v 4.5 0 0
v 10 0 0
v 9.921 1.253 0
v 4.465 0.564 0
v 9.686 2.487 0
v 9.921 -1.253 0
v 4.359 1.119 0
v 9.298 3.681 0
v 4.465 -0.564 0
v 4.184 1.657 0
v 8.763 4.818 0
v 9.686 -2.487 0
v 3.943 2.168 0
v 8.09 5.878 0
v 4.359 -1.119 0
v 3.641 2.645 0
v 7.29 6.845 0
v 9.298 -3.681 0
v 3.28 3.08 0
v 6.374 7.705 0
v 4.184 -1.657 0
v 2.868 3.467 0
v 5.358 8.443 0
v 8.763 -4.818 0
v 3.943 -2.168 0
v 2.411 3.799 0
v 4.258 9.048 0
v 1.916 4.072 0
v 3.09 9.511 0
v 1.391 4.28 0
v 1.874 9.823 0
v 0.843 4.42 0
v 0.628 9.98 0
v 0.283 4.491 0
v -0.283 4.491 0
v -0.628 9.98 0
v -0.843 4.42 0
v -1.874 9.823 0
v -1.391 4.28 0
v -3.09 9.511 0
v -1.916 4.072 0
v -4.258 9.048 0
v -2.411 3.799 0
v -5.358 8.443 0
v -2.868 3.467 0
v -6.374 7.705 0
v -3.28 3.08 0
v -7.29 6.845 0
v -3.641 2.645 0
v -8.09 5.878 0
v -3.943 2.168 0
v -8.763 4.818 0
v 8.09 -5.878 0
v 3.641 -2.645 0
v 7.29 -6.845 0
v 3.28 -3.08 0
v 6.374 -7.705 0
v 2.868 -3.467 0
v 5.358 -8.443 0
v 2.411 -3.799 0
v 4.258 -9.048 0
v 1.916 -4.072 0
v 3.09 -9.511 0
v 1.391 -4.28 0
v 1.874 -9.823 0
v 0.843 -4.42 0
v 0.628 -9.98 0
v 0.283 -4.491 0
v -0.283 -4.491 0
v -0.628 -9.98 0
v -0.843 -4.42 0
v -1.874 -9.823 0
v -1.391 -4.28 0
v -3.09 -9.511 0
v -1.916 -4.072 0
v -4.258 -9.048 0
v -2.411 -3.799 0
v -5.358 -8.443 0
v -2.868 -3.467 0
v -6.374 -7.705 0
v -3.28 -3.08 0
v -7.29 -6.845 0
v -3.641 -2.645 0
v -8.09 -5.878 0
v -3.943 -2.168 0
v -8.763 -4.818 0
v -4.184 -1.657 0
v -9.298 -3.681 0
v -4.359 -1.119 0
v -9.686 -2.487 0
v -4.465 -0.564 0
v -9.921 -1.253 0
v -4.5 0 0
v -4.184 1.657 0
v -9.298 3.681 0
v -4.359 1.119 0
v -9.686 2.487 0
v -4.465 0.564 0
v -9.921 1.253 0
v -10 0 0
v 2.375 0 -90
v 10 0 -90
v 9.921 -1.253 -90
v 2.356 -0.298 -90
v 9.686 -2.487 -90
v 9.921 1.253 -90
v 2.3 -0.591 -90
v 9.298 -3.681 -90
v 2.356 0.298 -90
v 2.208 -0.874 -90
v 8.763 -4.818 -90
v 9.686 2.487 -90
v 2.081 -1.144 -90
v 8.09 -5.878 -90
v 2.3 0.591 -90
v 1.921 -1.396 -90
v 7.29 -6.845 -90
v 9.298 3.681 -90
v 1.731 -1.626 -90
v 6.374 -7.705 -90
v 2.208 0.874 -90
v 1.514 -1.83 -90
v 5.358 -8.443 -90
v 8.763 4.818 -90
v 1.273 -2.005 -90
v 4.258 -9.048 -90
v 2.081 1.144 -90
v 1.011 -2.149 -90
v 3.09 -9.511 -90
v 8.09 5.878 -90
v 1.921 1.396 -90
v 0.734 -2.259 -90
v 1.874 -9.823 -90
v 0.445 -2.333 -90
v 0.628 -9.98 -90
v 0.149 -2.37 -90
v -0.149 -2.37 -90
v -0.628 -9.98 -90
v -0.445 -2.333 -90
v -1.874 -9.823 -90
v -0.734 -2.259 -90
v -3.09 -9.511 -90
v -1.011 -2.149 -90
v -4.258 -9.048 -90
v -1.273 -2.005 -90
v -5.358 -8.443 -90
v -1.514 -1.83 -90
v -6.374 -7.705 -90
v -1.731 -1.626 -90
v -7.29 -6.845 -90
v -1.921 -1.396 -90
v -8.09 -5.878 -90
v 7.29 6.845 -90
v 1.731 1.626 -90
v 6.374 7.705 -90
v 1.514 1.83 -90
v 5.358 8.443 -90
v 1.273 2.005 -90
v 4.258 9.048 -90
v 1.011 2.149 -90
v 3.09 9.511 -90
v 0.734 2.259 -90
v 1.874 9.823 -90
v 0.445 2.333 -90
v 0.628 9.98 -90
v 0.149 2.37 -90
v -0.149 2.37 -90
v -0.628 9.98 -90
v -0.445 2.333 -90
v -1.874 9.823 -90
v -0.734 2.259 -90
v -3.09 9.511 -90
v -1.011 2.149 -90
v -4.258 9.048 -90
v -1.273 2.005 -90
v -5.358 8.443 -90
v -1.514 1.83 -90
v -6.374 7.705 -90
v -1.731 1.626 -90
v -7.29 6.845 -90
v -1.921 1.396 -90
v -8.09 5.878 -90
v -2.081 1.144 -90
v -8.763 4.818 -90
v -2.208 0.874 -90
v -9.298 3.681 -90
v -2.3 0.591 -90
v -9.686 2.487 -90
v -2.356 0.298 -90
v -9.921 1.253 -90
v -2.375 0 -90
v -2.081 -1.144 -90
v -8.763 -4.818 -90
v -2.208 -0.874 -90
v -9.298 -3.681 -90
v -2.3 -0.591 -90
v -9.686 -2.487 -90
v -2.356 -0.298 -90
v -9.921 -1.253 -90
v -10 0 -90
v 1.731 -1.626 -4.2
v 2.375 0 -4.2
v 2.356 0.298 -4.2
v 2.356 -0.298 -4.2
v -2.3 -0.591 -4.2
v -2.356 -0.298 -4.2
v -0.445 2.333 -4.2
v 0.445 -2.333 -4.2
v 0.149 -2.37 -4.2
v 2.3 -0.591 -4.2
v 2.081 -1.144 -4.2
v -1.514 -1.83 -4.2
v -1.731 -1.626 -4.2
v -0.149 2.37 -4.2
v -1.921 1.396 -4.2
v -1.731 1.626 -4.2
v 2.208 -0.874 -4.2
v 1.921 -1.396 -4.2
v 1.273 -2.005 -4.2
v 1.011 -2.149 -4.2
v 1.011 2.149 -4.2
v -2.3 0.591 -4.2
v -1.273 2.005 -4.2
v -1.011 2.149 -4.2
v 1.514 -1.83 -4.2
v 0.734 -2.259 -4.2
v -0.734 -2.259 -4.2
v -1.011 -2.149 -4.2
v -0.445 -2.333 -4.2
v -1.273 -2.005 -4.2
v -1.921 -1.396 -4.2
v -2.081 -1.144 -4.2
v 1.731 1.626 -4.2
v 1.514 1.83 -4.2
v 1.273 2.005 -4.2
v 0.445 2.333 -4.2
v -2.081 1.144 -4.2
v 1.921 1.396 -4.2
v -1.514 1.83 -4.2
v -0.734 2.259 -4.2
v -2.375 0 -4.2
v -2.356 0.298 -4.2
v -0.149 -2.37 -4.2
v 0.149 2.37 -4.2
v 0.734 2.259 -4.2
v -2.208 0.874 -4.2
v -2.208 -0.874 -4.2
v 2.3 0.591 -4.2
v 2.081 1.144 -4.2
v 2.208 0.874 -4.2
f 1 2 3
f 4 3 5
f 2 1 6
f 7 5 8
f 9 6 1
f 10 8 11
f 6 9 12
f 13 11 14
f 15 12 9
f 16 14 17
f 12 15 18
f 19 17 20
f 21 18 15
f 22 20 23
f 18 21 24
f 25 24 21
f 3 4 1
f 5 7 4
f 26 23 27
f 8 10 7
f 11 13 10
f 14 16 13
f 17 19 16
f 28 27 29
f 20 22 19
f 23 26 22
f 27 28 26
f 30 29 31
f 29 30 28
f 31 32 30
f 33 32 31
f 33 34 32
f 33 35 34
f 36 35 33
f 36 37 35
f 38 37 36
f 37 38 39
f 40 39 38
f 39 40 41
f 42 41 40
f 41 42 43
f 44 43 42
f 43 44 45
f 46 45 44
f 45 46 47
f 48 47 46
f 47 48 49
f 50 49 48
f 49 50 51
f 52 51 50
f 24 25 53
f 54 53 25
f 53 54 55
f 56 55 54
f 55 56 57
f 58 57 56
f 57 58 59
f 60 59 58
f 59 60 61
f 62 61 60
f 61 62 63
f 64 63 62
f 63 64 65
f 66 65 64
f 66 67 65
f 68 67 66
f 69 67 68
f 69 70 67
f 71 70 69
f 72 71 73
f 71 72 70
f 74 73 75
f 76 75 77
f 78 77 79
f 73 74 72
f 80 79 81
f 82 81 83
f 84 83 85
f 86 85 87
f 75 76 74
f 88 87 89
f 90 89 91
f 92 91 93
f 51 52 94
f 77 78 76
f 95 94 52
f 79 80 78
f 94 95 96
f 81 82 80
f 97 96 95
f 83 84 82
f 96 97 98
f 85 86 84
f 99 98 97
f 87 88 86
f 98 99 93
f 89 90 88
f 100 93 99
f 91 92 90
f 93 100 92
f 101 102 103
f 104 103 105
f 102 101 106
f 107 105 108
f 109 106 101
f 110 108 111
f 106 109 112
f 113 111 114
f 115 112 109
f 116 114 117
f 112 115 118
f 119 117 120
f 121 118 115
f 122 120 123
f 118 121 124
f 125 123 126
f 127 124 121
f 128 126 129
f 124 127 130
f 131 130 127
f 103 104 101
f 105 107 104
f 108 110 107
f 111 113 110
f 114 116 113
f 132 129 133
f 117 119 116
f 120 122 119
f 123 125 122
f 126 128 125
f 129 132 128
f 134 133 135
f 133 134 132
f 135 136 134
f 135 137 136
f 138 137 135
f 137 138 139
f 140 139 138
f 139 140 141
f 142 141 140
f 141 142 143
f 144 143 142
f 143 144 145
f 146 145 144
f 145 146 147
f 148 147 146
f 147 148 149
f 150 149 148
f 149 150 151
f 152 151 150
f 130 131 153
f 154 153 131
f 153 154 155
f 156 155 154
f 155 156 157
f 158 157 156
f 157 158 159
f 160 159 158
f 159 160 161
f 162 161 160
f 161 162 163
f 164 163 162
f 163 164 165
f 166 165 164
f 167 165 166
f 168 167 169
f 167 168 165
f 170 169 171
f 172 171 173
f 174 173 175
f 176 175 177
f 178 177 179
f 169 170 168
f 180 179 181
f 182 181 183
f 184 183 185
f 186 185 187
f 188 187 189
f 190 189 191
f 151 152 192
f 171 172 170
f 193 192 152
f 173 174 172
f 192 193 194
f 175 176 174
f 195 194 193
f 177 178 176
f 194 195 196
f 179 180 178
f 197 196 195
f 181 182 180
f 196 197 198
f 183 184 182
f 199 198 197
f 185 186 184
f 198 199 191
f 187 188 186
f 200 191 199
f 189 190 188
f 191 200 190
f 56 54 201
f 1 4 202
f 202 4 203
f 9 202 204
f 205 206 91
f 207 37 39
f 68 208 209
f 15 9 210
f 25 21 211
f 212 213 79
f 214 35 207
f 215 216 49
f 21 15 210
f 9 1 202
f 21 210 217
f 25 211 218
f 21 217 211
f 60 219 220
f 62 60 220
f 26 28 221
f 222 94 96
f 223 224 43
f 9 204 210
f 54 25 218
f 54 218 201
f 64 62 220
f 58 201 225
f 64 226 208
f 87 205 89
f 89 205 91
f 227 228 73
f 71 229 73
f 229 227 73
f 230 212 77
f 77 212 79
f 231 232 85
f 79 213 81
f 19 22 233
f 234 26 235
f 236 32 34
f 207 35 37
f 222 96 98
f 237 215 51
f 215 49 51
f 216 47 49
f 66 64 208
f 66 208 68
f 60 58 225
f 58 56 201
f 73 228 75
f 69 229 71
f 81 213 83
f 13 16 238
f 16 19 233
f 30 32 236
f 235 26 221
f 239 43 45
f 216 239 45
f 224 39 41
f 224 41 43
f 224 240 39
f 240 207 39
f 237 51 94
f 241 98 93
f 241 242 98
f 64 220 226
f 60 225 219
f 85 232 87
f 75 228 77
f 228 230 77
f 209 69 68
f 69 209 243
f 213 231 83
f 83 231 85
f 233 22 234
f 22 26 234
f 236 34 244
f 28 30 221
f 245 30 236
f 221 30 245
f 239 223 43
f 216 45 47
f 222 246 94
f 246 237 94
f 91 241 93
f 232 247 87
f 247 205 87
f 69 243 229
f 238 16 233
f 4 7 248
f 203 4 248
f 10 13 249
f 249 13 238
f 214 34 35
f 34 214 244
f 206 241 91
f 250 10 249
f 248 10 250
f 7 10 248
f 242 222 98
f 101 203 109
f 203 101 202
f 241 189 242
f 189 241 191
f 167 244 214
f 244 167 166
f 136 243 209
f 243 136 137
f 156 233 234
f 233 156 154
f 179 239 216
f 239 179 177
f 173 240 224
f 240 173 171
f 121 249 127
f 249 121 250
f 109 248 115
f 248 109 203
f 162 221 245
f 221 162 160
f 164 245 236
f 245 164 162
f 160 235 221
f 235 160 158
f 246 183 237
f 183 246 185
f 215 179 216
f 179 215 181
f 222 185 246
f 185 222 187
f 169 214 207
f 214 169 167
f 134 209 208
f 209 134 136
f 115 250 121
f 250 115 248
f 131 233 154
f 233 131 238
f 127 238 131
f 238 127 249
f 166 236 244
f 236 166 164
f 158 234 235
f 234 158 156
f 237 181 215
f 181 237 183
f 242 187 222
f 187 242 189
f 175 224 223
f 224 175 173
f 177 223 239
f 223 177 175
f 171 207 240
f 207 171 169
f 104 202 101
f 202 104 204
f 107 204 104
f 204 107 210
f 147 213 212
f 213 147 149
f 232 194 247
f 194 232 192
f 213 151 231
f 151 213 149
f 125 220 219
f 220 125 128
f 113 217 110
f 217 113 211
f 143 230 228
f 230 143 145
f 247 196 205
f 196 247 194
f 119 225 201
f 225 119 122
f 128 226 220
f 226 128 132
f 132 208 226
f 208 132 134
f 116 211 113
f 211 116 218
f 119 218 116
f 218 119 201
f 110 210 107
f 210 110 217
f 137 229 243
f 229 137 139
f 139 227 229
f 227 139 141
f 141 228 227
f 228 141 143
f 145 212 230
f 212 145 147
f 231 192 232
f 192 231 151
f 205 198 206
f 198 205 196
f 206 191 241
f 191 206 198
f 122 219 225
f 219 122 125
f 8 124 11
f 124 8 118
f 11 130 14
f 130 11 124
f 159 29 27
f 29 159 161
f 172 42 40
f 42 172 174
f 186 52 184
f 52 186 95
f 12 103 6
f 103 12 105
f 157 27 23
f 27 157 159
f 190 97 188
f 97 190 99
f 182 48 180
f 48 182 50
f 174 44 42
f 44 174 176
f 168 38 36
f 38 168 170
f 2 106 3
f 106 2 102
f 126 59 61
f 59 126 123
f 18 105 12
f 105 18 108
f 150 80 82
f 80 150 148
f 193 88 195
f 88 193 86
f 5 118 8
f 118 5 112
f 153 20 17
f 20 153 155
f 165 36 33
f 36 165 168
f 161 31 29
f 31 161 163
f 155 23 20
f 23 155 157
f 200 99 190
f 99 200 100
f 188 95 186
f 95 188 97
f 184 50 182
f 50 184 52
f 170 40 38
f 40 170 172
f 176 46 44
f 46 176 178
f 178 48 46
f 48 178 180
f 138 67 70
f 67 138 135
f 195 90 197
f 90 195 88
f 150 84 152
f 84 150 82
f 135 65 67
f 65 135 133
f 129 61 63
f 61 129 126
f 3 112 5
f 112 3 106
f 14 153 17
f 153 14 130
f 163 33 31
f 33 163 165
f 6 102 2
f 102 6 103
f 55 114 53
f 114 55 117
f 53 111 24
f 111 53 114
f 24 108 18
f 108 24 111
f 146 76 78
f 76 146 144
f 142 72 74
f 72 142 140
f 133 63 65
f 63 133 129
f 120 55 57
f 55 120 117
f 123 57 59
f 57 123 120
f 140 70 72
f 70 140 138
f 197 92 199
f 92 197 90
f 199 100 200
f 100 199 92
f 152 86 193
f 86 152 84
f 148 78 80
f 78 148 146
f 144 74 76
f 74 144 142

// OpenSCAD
$fn = 50;


difference() {
	union() {
		translate(v = [0, 0, -90.0000000000]) {
			cylinder(h = 90, r = 10.0000000000);
		}
		cylinder(h = 0, r = 19.0000000000);
	}
	union() {
		translate(v = [0, 0, 0]) {
			rotate(a = [0, 0, 0]) {
				difference() {
					union() {
						#translate(v = [0, 0, -90.0000000000]) {
							cylinder(h = 90, r = 2.2500000000);
						}
						#translate(v = [0, 0, -4.2000000000]) {
							cylinder(h = 4.2000000000, r1 = 2.3750000000, r2 = 4.5000000000);
						}
						#translate(v = [0, 0, -90.0000000000]) {
							cylinder(h = 90, r = 2.3750000000);
						}
						#translate(v = [0, 0, -90.0000000000]) {
							cylinder(h = 90, r = 2.2500000000);
						}
					}
					union();
				}
			}
		}
	}
}
